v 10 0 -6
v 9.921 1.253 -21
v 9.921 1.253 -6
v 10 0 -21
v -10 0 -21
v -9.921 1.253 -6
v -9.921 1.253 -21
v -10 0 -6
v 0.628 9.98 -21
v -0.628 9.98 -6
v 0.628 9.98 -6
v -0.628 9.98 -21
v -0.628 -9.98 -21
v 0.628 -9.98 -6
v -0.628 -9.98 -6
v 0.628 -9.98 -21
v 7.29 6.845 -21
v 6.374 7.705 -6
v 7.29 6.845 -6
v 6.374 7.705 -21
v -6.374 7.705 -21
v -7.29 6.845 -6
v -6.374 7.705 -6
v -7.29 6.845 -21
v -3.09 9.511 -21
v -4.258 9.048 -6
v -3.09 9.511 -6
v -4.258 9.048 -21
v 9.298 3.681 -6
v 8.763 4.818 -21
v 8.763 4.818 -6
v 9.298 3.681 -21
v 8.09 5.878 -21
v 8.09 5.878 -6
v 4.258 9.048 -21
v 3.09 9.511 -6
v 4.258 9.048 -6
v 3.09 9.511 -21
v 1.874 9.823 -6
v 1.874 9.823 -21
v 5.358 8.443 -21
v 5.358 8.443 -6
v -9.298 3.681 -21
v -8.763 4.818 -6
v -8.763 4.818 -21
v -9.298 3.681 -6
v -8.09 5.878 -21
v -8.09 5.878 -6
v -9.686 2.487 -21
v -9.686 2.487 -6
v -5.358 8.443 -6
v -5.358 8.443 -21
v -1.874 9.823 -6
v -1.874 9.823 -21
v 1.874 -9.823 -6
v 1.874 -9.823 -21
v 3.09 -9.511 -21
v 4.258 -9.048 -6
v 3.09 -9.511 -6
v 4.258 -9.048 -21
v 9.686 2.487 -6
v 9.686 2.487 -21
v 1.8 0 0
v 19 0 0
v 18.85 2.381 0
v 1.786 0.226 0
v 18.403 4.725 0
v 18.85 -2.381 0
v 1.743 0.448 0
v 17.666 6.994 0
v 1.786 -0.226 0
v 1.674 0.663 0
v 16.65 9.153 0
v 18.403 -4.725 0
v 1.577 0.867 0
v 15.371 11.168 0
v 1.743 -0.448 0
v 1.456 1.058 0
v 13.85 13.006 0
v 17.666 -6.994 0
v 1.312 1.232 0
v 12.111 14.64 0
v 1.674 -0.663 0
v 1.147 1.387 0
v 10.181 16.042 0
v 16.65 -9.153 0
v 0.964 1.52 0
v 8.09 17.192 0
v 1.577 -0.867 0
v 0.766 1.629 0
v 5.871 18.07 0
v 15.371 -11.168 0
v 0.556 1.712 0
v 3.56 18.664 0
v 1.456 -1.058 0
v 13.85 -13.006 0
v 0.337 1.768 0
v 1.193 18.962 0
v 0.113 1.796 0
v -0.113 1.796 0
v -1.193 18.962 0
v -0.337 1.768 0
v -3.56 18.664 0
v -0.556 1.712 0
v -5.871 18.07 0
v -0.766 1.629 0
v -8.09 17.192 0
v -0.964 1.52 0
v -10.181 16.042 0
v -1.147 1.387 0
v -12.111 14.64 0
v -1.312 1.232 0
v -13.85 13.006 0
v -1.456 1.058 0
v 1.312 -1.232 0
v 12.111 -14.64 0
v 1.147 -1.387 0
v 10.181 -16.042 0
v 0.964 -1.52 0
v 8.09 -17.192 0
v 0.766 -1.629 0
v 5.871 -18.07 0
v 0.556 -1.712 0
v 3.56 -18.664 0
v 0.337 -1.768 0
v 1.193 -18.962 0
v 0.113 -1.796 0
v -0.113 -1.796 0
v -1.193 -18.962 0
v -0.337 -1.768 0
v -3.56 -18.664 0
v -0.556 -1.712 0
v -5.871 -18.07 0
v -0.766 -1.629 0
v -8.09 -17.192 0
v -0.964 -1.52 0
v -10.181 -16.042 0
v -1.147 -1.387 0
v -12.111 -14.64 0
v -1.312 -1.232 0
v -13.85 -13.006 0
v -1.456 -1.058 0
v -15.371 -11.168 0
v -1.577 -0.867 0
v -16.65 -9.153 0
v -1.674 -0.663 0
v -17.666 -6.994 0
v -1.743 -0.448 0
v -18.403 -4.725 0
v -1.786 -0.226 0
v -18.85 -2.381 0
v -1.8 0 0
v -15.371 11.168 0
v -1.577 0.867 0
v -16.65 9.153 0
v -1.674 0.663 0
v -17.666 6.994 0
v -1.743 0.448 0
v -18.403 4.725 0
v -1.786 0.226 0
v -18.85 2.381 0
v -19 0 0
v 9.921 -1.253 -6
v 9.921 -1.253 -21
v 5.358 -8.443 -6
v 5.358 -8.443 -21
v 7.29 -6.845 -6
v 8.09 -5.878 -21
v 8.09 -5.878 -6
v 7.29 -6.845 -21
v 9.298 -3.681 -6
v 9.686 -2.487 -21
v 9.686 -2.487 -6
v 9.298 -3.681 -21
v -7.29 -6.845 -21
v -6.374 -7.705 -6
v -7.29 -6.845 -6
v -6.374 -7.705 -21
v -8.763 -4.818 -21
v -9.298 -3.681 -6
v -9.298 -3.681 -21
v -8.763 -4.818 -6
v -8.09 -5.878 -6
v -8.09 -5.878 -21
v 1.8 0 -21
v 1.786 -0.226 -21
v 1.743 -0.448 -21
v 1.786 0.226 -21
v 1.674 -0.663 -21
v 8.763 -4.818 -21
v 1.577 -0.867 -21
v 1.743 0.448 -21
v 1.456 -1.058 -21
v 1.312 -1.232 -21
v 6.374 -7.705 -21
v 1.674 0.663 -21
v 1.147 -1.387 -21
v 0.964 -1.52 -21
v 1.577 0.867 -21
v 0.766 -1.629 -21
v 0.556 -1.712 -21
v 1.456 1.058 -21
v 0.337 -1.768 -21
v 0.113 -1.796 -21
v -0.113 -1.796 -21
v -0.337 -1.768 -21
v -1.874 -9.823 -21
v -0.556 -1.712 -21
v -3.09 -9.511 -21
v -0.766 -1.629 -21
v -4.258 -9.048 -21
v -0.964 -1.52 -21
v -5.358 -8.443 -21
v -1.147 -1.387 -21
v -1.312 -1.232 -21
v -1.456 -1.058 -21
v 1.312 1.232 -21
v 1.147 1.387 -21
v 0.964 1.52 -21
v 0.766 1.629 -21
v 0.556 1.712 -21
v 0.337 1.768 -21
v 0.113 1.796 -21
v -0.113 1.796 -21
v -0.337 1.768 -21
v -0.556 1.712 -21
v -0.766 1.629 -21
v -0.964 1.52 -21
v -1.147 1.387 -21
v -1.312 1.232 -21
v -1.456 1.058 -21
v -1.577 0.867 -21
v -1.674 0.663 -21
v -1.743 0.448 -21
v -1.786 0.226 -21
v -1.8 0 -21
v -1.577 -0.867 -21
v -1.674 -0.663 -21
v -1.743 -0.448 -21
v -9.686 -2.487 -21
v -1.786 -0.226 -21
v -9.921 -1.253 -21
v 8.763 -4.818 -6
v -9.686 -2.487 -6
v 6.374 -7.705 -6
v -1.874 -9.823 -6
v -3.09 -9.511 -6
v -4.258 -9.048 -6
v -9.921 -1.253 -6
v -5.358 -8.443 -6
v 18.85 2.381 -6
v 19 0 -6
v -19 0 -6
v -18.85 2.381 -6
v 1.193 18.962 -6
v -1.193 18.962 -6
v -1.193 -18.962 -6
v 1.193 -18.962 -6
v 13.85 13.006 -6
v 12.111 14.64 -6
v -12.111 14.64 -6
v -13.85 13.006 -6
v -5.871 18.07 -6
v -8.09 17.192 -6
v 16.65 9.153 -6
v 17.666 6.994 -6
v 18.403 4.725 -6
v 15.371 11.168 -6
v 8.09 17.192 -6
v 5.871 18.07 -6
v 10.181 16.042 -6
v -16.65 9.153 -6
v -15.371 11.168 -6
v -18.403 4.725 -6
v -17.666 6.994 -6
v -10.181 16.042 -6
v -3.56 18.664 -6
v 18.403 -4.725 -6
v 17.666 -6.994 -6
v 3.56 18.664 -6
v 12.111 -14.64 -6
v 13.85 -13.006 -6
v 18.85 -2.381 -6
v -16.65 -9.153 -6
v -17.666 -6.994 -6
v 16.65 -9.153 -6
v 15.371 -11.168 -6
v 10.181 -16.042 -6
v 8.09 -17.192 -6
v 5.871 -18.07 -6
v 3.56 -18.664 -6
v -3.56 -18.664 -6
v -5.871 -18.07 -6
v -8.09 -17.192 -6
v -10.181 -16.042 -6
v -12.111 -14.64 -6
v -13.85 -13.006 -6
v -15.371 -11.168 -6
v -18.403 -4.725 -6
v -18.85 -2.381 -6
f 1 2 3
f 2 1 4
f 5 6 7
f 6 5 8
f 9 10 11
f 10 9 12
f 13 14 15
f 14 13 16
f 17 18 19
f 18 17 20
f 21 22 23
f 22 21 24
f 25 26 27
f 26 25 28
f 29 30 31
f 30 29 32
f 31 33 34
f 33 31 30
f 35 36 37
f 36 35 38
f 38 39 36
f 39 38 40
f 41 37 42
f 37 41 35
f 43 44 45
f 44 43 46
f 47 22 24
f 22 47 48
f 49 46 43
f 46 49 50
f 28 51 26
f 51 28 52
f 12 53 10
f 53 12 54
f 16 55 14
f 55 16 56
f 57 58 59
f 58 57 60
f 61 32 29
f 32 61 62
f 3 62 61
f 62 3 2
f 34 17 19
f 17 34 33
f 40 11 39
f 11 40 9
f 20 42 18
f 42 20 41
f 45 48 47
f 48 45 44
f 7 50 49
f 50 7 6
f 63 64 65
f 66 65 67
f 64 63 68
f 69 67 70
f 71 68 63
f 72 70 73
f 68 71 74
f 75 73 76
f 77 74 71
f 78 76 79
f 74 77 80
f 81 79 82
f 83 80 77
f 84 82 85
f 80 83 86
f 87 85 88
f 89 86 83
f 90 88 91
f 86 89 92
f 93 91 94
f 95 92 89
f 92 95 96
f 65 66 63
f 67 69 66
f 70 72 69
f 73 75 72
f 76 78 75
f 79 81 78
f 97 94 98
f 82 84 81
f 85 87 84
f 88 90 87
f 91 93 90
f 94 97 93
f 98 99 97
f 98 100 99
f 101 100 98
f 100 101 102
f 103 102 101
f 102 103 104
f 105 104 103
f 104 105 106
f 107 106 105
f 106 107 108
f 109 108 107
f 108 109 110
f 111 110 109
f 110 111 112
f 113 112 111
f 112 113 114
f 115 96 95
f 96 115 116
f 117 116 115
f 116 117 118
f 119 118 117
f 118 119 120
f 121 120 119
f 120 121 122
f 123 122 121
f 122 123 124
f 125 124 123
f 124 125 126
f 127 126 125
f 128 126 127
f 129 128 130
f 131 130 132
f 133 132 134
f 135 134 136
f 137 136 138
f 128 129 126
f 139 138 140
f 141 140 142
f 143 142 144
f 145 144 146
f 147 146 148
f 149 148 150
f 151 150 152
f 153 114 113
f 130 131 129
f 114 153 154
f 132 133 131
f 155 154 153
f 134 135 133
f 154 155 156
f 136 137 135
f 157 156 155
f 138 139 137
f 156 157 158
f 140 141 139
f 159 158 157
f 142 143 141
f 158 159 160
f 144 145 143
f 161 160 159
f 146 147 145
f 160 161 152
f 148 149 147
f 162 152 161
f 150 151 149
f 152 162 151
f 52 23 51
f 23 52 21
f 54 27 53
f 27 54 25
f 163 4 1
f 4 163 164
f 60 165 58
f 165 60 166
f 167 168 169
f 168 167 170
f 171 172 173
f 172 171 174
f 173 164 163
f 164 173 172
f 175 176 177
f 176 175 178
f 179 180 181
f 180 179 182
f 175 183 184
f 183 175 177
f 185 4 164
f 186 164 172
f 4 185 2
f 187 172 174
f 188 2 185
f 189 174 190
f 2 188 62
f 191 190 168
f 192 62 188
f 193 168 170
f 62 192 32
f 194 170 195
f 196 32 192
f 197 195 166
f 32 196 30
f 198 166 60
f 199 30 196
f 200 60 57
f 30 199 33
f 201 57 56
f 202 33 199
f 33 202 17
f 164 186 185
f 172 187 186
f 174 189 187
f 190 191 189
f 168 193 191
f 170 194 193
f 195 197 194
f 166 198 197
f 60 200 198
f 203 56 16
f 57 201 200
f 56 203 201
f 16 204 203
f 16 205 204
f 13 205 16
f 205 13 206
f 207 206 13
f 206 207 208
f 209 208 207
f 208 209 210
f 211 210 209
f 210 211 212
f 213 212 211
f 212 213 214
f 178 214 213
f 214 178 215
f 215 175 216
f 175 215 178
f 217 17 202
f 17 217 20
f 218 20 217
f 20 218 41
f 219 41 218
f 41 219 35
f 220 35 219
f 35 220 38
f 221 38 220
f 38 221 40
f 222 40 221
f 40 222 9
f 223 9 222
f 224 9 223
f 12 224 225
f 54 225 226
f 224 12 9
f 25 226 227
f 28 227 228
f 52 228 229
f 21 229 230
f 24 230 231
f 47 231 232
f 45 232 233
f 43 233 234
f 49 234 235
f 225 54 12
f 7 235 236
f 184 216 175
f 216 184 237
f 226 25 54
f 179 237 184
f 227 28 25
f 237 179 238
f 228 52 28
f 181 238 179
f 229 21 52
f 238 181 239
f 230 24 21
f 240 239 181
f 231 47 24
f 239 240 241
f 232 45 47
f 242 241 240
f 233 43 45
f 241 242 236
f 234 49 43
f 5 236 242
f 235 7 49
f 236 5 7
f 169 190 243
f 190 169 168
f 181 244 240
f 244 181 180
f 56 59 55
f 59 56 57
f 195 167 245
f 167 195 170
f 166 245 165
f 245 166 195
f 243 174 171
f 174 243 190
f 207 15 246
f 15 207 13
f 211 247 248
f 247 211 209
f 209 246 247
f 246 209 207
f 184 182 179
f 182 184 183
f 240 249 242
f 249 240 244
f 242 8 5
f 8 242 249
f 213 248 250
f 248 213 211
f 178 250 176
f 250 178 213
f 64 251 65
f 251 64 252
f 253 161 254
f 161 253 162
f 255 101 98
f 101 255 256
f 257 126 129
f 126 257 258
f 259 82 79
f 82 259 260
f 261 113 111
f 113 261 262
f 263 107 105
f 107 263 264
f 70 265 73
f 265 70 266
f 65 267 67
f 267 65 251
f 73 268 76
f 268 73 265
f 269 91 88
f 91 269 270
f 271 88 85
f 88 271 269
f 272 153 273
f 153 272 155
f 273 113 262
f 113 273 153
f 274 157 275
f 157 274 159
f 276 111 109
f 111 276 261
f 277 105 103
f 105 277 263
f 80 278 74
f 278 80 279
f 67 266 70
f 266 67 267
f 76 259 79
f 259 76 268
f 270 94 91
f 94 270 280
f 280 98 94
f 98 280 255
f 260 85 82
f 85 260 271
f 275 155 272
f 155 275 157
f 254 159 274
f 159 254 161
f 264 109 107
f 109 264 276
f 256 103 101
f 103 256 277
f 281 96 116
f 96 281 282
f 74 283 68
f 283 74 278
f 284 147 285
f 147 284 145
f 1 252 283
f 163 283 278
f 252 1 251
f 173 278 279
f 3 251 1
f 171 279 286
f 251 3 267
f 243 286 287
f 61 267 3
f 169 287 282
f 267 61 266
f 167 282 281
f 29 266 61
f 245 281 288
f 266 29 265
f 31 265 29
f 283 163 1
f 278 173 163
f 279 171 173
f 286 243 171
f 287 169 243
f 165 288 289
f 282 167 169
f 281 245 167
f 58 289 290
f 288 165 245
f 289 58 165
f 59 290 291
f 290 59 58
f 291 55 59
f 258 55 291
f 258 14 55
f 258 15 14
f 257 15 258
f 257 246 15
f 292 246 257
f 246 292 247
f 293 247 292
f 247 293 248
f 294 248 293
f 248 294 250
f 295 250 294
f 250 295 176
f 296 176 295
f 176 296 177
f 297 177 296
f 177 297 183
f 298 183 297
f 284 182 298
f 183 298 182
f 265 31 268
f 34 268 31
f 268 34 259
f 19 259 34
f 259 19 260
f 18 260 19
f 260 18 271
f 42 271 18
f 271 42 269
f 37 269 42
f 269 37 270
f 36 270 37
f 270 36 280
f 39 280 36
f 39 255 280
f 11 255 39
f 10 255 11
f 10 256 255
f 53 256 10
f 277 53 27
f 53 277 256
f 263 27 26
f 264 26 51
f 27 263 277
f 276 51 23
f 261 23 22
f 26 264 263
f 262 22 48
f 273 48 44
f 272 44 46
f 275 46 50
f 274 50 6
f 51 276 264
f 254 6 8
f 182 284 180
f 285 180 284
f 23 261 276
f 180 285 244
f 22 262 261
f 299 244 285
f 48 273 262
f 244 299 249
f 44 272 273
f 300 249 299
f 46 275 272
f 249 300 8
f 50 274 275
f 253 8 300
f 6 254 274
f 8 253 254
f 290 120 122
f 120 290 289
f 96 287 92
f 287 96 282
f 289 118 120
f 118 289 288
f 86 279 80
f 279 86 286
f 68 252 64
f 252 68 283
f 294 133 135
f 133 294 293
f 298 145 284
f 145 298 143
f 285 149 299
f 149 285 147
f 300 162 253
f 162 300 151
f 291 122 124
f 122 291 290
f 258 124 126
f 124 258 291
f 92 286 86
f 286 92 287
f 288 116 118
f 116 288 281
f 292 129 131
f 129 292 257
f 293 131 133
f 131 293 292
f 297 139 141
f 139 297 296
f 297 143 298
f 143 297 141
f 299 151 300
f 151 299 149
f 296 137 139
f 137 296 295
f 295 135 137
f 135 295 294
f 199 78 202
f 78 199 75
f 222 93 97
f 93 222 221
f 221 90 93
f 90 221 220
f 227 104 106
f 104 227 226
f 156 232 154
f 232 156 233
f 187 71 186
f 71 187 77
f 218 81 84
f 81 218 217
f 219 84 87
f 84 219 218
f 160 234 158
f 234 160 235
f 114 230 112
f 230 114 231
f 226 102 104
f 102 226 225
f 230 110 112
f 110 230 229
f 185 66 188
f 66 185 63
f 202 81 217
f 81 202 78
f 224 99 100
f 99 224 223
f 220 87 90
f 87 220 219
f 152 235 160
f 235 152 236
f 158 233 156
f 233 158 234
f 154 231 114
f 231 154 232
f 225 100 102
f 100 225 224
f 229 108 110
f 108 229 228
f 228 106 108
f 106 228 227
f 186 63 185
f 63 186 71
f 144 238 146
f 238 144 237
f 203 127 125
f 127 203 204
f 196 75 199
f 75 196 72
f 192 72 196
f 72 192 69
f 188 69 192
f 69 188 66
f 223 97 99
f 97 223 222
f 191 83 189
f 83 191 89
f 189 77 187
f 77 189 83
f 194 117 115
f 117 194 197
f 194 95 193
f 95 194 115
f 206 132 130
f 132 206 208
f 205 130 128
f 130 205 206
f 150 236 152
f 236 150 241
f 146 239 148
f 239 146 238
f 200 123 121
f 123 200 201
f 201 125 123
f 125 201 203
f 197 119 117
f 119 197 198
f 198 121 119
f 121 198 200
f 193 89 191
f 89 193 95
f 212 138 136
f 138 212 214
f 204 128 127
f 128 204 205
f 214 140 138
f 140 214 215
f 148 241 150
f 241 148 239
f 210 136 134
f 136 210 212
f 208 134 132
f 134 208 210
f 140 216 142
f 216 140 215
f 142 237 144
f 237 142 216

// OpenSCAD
$fn = 50;


difference() {
	union() {
		translate(v = [0, 0, -21.0000000000]) {
			cylinder(h = 21, r = 10.0000000000);
		}
		translate(v = [0, 0, -6.0000000000]) {
			cylinder(h = 6, r = 19.0000000000);
		}
	}
	union() {
		#translate(v = [0, 0, -21]) {
			cylinder(h = 21, r = 1.8000000000);
		}
	}
}
